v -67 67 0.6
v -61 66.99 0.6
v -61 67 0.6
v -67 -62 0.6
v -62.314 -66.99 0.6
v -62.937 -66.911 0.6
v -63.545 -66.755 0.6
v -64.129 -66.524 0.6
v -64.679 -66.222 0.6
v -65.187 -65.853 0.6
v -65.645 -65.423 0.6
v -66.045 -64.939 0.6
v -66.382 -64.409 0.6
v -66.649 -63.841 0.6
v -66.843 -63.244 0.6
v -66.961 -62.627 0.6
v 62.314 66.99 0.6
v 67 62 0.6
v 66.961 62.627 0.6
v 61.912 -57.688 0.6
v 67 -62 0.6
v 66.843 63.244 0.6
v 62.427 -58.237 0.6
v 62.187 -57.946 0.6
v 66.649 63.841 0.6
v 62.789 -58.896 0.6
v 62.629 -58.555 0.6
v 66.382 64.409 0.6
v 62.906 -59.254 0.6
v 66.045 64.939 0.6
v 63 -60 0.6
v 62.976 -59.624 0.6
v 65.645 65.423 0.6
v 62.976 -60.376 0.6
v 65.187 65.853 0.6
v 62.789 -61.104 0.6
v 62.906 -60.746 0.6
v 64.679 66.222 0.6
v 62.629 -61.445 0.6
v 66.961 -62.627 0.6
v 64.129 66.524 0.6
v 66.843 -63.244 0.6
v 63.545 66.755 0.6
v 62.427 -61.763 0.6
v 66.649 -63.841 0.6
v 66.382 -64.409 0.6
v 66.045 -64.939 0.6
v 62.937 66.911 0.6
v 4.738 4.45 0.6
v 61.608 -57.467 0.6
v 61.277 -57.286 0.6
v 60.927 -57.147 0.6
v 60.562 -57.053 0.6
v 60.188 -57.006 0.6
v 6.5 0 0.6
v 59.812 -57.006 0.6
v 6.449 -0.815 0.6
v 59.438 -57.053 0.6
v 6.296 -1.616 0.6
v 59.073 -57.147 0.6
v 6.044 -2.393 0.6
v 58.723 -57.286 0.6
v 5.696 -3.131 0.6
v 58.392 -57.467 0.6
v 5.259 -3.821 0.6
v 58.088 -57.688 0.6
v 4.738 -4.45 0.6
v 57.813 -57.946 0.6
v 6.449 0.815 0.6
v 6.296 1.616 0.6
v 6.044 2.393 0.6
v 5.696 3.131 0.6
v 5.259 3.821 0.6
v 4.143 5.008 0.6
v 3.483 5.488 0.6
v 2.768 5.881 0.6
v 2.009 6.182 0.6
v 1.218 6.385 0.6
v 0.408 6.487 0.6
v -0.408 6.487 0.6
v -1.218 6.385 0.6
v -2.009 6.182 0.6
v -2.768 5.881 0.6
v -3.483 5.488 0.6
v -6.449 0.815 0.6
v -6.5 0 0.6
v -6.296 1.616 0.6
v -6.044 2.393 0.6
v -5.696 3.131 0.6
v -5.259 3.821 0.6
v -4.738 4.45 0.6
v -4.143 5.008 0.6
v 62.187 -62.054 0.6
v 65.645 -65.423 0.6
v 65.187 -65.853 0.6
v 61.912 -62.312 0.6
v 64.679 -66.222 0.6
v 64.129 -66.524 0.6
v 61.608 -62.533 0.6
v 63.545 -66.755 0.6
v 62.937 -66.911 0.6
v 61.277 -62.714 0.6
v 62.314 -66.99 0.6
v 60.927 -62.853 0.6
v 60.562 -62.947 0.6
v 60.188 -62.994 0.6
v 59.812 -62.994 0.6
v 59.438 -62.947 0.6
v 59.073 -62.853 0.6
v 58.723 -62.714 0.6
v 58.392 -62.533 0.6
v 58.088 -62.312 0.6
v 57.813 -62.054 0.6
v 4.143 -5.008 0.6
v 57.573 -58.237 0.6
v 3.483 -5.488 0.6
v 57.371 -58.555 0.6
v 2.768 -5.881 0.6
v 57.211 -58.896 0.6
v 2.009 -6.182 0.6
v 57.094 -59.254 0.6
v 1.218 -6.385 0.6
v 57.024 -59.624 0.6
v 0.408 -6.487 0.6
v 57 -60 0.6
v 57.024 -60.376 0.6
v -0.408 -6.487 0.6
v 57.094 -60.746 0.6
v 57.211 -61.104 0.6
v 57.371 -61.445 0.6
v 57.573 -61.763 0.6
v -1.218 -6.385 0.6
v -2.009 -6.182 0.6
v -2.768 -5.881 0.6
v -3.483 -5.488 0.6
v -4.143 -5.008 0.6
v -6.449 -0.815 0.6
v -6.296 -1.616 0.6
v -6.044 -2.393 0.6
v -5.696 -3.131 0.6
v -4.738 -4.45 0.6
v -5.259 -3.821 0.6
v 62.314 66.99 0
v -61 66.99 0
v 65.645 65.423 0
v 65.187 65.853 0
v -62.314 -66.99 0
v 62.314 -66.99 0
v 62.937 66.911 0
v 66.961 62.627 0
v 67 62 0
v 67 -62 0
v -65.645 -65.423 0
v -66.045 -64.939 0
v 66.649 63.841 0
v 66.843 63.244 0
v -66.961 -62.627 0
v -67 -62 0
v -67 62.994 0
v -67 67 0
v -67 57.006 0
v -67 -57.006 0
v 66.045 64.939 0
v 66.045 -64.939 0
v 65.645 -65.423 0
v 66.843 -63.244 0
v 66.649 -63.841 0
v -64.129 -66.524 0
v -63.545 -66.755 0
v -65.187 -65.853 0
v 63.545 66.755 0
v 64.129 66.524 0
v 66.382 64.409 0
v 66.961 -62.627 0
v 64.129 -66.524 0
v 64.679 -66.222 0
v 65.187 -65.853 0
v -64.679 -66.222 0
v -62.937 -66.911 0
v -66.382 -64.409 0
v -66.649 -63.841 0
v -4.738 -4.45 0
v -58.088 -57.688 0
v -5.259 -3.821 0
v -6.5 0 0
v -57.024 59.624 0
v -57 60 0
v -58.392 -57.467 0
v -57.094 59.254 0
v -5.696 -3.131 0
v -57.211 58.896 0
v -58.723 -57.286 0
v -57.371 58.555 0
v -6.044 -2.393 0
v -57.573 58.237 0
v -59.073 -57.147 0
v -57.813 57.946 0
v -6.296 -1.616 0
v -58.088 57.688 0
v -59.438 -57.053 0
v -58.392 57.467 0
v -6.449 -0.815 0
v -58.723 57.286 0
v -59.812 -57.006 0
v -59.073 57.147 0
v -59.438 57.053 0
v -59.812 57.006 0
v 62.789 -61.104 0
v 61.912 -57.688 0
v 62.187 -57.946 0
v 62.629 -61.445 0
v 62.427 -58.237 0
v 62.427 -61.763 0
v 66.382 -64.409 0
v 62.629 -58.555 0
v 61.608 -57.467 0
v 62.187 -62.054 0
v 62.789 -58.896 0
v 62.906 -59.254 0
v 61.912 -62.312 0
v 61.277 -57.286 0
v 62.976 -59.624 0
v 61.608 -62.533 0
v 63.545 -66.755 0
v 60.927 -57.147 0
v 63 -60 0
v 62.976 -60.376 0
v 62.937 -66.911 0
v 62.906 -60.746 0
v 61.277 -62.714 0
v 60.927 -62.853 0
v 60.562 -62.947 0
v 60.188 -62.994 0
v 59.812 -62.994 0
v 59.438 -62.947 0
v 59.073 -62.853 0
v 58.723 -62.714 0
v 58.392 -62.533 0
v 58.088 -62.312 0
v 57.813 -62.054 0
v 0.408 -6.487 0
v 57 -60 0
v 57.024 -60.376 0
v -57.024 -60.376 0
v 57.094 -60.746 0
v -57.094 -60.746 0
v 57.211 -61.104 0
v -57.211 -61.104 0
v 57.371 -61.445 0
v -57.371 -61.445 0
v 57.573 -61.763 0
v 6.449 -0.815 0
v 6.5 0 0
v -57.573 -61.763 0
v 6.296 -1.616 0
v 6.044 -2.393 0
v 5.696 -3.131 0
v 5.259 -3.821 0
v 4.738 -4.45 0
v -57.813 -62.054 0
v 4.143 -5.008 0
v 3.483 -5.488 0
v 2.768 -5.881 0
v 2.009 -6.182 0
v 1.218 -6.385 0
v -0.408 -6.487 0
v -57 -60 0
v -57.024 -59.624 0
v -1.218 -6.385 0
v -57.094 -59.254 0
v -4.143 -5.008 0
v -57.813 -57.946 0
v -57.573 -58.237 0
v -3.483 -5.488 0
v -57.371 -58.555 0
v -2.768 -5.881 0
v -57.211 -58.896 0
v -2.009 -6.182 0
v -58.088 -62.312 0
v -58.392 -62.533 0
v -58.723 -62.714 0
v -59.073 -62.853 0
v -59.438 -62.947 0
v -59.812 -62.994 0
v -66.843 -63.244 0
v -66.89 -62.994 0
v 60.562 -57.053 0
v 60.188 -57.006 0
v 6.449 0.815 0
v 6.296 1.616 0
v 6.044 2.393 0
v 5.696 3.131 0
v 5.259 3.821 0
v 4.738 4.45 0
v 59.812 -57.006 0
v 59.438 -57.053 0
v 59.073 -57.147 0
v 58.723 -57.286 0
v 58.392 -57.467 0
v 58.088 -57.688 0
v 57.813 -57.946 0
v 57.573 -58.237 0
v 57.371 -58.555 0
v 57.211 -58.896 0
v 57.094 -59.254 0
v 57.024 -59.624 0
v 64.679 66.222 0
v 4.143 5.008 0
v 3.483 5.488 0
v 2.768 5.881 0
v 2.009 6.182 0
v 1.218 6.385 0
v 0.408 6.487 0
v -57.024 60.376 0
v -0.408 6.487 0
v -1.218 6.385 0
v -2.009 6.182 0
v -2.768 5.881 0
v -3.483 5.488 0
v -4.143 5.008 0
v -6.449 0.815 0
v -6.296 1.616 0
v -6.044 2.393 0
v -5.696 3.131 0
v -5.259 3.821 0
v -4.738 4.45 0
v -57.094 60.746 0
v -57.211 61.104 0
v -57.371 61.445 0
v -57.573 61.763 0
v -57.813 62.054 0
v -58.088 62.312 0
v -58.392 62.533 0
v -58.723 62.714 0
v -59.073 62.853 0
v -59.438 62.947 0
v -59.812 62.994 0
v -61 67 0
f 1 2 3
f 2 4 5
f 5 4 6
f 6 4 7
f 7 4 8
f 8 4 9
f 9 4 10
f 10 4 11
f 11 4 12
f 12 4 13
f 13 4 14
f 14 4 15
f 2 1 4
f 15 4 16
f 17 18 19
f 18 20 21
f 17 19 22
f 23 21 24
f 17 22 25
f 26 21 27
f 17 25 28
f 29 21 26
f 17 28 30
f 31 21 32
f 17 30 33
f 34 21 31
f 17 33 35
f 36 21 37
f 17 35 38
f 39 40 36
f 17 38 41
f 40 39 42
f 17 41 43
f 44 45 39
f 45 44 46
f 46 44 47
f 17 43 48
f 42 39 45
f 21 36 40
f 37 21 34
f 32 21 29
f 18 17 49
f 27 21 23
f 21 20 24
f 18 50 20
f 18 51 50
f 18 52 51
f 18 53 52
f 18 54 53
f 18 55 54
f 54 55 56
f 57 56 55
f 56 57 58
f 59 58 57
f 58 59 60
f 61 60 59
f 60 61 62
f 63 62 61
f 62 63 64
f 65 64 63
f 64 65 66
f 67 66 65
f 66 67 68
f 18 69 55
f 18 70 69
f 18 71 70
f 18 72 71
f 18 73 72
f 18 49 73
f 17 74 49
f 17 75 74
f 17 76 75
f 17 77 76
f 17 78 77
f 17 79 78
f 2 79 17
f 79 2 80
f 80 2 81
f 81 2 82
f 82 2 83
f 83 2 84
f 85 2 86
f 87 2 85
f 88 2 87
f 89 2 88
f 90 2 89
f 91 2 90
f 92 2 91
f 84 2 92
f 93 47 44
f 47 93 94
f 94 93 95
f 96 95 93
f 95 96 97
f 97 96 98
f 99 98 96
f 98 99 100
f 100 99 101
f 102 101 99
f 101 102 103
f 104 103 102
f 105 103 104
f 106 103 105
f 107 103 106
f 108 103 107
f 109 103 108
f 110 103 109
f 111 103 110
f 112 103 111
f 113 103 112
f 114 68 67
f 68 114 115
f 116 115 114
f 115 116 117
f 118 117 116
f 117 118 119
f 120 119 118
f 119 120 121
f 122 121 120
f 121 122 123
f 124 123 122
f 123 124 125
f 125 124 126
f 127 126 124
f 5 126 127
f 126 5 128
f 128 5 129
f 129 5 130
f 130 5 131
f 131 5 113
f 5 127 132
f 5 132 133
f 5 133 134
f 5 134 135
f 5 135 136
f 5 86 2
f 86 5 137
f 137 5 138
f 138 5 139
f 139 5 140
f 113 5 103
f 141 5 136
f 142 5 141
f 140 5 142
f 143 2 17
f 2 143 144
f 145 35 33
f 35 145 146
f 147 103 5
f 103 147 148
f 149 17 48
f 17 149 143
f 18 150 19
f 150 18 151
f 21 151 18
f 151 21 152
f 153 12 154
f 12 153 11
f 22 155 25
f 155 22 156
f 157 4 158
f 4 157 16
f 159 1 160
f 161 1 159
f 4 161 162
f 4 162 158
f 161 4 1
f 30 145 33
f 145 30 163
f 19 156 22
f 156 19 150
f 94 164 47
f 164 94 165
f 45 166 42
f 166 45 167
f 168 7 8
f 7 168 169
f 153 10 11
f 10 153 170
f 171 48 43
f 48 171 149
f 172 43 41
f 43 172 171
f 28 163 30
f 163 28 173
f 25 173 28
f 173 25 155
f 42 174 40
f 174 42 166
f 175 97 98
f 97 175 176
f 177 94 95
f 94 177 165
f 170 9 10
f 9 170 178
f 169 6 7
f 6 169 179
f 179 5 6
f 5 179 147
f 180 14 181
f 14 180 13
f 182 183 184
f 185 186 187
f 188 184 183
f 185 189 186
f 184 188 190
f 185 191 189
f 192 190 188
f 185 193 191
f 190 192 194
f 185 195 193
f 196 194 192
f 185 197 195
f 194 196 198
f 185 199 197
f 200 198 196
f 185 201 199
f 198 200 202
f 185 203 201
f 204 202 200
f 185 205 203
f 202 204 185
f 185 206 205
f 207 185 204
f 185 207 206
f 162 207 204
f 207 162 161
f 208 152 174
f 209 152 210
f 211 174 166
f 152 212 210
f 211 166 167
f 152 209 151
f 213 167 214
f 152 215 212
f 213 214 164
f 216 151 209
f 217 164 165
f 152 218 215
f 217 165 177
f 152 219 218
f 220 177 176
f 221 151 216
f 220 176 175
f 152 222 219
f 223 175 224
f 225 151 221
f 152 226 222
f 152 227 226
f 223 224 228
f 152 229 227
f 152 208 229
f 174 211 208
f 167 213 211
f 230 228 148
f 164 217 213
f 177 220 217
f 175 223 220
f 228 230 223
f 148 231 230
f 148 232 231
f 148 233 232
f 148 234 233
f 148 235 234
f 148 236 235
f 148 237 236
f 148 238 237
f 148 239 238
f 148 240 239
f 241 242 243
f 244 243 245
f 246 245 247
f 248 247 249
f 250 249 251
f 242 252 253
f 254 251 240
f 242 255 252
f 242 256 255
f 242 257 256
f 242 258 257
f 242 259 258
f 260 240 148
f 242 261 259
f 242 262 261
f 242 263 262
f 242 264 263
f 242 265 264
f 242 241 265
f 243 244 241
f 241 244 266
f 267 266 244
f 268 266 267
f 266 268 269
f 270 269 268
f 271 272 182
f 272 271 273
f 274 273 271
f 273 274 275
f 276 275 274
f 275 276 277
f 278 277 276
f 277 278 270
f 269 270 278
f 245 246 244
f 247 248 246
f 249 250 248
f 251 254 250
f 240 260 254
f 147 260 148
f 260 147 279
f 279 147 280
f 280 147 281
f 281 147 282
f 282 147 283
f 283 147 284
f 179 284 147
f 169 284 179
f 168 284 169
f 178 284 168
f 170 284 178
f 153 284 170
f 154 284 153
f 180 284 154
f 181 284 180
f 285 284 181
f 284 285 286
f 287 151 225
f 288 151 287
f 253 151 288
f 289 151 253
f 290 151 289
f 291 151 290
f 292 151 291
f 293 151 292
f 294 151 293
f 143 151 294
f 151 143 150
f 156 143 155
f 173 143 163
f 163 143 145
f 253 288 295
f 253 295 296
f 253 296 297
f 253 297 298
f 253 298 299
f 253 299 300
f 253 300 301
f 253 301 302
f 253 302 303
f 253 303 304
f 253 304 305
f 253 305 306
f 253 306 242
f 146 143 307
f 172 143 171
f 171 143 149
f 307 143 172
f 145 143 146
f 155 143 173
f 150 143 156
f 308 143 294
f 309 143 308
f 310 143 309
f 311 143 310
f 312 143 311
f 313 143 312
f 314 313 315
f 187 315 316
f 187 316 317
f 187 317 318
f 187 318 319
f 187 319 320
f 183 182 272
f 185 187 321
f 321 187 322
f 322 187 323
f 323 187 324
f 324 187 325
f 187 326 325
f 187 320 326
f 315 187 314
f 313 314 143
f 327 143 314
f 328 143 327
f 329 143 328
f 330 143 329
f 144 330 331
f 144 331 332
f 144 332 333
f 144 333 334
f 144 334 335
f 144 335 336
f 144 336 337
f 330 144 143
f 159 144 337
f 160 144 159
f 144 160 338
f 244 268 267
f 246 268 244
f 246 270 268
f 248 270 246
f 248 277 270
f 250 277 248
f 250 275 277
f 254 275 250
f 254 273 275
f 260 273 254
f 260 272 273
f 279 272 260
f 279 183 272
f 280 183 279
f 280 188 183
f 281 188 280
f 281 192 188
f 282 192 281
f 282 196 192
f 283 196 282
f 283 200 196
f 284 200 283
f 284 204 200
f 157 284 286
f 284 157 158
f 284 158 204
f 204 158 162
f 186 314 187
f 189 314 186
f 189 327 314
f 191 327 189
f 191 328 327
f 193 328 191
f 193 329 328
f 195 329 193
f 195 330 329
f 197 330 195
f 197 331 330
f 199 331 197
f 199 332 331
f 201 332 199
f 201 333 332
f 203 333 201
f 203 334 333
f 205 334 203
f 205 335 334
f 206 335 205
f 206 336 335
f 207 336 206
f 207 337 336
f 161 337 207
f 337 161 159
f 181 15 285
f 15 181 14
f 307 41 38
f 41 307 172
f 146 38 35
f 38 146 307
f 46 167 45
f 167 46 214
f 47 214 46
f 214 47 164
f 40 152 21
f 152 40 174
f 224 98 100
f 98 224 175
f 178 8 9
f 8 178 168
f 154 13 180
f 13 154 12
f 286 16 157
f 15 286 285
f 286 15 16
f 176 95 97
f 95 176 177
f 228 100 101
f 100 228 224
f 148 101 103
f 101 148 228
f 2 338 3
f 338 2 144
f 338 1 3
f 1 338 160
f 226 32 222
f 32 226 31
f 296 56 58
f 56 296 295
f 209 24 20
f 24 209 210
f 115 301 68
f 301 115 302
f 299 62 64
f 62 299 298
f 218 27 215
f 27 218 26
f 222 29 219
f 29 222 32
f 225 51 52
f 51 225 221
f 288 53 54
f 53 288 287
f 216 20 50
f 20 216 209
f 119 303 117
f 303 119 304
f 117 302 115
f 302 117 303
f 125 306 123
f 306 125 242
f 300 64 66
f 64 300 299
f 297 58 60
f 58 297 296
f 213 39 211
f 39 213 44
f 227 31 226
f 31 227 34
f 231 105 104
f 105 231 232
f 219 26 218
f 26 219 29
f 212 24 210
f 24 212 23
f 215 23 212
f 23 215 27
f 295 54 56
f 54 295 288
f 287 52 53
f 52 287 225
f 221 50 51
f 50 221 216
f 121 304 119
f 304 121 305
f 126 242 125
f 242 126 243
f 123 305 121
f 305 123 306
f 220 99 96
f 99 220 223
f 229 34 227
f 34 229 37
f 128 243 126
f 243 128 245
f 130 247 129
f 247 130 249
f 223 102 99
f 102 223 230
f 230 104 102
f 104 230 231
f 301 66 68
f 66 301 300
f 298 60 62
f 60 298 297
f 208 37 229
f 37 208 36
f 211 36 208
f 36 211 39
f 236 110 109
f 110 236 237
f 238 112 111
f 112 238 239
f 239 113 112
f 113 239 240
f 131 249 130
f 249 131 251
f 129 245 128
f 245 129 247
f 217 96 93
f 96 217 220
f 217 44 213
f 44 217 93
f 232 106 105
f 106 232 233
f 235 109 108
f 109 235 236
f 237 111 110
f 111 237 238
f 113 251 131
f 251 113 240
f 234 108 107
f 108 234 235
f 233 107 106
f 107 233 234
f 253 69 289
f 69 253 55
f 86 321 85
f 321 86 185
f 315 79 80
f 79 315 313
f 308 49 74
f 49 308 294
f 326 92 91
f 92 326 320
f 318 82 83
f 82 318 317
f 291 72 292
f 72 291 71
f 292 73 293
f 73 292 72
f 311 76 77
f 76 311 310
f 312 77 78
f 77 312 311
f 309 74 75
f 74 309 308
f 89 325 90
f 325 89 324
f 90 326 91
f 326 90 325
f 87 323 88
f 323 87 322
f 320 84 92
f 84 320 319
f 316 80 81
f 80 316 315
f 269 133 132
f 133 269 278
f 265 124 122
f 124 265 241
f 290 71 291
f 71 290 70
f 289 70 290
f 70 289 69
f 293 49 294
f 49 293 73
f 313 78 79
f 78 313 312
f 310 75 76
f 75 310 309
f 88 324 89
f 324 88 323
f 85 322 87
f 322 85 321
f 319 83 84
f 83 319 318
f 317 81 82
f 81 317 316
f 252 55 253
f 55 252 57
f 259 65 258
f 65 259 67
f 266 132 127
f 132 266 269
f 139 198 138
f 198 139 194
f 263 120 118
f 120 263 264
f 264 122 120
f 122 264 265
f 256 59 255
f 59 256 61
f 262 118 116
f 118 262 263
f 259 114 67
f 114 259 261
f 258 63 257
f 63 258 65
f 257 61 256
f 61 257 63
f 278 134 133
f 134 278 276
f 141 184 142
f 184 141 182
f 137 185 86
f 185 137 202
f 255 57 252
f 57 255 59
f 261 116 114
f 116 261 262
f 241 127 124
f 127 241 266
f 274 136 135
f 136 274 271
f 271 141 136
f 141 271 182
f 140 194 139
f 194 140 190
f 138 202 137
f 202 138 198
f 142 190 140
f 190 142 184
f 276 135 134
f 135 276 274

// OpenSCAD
$fn = 50;


difference() {
	union() {
		hull() {
			translate(v = [-62.0000000000, 62.0000000000, 0]) {
				cylinder(h = 0.6000000000, r = 5);
			}
			translate(v = [62.0000000000, 62.0000000000, 0]) {
				cylinder(h = 0.6000000000, r = 5);
			}
			translate(v = [-62.0000000000, -62.0000000000, 0]) {
				cylinder(h = 0.6000000000, r = 5);
			}
			translate(v = [62.0000000000, -62.0000000000, 0]) {
				cylinder(h = 0.6000000000, r = 5);
			}
		}
		translate(v = [-67.0000000000, 61.0000000000, 0]) {
			cube(size = [6, 6, 0.6000000000]);
		}
	}
	union() {
		translate(v = [-67.5000000000, -60.0000000000, -250.0000000000]) {
			rotate(a = [0, 0, 0]) {
				difference() {
					union() {
						hull() {
							translate(v = [7.5000000000, 0, 0]) {
								cylinder(h = 250, r = 3.0000000000, r1 = 3.0000000000, r2 = 3.0000000000);
							}
							translate(v = [-7.5000000000, 0, 0]) {
								cylinder(h = 250, r = 3.0000000000, r1 = 3.0000000000, r2 = 3.0000000000);
							}
						}
					}
					union();
				}
			}
		}
		translate(v = [-67.5000000000, 60.0000000000, -250.0000000000]) {
			rotate(a = [0, 0, 0]) {
				difference() {
					union() {
						hull() {
							translate(v = [7.5000000000, 0, 0]) {
								cylinder(h = 250, r = 3.0000000000, r1 = 3.0000000000, r2 = 3.0000000000);
							}
							translate(v = [-7.5000000000, 0, 0]) {
								cylinder(h = 250, r = 3.0000000000, r1 = 3.0000000000, r2 = 3.0000000000);
							}
						}
					}
					union();
				}
			}
		}
		translate(v = [60.0000000000, -60.0000000000, -50.0000000000]) {
			cylinder(h = 100, r = 3.0000000000);
		}
		cylinder(h = 0.6000000000, r = 6.5000000000);
	}
}
